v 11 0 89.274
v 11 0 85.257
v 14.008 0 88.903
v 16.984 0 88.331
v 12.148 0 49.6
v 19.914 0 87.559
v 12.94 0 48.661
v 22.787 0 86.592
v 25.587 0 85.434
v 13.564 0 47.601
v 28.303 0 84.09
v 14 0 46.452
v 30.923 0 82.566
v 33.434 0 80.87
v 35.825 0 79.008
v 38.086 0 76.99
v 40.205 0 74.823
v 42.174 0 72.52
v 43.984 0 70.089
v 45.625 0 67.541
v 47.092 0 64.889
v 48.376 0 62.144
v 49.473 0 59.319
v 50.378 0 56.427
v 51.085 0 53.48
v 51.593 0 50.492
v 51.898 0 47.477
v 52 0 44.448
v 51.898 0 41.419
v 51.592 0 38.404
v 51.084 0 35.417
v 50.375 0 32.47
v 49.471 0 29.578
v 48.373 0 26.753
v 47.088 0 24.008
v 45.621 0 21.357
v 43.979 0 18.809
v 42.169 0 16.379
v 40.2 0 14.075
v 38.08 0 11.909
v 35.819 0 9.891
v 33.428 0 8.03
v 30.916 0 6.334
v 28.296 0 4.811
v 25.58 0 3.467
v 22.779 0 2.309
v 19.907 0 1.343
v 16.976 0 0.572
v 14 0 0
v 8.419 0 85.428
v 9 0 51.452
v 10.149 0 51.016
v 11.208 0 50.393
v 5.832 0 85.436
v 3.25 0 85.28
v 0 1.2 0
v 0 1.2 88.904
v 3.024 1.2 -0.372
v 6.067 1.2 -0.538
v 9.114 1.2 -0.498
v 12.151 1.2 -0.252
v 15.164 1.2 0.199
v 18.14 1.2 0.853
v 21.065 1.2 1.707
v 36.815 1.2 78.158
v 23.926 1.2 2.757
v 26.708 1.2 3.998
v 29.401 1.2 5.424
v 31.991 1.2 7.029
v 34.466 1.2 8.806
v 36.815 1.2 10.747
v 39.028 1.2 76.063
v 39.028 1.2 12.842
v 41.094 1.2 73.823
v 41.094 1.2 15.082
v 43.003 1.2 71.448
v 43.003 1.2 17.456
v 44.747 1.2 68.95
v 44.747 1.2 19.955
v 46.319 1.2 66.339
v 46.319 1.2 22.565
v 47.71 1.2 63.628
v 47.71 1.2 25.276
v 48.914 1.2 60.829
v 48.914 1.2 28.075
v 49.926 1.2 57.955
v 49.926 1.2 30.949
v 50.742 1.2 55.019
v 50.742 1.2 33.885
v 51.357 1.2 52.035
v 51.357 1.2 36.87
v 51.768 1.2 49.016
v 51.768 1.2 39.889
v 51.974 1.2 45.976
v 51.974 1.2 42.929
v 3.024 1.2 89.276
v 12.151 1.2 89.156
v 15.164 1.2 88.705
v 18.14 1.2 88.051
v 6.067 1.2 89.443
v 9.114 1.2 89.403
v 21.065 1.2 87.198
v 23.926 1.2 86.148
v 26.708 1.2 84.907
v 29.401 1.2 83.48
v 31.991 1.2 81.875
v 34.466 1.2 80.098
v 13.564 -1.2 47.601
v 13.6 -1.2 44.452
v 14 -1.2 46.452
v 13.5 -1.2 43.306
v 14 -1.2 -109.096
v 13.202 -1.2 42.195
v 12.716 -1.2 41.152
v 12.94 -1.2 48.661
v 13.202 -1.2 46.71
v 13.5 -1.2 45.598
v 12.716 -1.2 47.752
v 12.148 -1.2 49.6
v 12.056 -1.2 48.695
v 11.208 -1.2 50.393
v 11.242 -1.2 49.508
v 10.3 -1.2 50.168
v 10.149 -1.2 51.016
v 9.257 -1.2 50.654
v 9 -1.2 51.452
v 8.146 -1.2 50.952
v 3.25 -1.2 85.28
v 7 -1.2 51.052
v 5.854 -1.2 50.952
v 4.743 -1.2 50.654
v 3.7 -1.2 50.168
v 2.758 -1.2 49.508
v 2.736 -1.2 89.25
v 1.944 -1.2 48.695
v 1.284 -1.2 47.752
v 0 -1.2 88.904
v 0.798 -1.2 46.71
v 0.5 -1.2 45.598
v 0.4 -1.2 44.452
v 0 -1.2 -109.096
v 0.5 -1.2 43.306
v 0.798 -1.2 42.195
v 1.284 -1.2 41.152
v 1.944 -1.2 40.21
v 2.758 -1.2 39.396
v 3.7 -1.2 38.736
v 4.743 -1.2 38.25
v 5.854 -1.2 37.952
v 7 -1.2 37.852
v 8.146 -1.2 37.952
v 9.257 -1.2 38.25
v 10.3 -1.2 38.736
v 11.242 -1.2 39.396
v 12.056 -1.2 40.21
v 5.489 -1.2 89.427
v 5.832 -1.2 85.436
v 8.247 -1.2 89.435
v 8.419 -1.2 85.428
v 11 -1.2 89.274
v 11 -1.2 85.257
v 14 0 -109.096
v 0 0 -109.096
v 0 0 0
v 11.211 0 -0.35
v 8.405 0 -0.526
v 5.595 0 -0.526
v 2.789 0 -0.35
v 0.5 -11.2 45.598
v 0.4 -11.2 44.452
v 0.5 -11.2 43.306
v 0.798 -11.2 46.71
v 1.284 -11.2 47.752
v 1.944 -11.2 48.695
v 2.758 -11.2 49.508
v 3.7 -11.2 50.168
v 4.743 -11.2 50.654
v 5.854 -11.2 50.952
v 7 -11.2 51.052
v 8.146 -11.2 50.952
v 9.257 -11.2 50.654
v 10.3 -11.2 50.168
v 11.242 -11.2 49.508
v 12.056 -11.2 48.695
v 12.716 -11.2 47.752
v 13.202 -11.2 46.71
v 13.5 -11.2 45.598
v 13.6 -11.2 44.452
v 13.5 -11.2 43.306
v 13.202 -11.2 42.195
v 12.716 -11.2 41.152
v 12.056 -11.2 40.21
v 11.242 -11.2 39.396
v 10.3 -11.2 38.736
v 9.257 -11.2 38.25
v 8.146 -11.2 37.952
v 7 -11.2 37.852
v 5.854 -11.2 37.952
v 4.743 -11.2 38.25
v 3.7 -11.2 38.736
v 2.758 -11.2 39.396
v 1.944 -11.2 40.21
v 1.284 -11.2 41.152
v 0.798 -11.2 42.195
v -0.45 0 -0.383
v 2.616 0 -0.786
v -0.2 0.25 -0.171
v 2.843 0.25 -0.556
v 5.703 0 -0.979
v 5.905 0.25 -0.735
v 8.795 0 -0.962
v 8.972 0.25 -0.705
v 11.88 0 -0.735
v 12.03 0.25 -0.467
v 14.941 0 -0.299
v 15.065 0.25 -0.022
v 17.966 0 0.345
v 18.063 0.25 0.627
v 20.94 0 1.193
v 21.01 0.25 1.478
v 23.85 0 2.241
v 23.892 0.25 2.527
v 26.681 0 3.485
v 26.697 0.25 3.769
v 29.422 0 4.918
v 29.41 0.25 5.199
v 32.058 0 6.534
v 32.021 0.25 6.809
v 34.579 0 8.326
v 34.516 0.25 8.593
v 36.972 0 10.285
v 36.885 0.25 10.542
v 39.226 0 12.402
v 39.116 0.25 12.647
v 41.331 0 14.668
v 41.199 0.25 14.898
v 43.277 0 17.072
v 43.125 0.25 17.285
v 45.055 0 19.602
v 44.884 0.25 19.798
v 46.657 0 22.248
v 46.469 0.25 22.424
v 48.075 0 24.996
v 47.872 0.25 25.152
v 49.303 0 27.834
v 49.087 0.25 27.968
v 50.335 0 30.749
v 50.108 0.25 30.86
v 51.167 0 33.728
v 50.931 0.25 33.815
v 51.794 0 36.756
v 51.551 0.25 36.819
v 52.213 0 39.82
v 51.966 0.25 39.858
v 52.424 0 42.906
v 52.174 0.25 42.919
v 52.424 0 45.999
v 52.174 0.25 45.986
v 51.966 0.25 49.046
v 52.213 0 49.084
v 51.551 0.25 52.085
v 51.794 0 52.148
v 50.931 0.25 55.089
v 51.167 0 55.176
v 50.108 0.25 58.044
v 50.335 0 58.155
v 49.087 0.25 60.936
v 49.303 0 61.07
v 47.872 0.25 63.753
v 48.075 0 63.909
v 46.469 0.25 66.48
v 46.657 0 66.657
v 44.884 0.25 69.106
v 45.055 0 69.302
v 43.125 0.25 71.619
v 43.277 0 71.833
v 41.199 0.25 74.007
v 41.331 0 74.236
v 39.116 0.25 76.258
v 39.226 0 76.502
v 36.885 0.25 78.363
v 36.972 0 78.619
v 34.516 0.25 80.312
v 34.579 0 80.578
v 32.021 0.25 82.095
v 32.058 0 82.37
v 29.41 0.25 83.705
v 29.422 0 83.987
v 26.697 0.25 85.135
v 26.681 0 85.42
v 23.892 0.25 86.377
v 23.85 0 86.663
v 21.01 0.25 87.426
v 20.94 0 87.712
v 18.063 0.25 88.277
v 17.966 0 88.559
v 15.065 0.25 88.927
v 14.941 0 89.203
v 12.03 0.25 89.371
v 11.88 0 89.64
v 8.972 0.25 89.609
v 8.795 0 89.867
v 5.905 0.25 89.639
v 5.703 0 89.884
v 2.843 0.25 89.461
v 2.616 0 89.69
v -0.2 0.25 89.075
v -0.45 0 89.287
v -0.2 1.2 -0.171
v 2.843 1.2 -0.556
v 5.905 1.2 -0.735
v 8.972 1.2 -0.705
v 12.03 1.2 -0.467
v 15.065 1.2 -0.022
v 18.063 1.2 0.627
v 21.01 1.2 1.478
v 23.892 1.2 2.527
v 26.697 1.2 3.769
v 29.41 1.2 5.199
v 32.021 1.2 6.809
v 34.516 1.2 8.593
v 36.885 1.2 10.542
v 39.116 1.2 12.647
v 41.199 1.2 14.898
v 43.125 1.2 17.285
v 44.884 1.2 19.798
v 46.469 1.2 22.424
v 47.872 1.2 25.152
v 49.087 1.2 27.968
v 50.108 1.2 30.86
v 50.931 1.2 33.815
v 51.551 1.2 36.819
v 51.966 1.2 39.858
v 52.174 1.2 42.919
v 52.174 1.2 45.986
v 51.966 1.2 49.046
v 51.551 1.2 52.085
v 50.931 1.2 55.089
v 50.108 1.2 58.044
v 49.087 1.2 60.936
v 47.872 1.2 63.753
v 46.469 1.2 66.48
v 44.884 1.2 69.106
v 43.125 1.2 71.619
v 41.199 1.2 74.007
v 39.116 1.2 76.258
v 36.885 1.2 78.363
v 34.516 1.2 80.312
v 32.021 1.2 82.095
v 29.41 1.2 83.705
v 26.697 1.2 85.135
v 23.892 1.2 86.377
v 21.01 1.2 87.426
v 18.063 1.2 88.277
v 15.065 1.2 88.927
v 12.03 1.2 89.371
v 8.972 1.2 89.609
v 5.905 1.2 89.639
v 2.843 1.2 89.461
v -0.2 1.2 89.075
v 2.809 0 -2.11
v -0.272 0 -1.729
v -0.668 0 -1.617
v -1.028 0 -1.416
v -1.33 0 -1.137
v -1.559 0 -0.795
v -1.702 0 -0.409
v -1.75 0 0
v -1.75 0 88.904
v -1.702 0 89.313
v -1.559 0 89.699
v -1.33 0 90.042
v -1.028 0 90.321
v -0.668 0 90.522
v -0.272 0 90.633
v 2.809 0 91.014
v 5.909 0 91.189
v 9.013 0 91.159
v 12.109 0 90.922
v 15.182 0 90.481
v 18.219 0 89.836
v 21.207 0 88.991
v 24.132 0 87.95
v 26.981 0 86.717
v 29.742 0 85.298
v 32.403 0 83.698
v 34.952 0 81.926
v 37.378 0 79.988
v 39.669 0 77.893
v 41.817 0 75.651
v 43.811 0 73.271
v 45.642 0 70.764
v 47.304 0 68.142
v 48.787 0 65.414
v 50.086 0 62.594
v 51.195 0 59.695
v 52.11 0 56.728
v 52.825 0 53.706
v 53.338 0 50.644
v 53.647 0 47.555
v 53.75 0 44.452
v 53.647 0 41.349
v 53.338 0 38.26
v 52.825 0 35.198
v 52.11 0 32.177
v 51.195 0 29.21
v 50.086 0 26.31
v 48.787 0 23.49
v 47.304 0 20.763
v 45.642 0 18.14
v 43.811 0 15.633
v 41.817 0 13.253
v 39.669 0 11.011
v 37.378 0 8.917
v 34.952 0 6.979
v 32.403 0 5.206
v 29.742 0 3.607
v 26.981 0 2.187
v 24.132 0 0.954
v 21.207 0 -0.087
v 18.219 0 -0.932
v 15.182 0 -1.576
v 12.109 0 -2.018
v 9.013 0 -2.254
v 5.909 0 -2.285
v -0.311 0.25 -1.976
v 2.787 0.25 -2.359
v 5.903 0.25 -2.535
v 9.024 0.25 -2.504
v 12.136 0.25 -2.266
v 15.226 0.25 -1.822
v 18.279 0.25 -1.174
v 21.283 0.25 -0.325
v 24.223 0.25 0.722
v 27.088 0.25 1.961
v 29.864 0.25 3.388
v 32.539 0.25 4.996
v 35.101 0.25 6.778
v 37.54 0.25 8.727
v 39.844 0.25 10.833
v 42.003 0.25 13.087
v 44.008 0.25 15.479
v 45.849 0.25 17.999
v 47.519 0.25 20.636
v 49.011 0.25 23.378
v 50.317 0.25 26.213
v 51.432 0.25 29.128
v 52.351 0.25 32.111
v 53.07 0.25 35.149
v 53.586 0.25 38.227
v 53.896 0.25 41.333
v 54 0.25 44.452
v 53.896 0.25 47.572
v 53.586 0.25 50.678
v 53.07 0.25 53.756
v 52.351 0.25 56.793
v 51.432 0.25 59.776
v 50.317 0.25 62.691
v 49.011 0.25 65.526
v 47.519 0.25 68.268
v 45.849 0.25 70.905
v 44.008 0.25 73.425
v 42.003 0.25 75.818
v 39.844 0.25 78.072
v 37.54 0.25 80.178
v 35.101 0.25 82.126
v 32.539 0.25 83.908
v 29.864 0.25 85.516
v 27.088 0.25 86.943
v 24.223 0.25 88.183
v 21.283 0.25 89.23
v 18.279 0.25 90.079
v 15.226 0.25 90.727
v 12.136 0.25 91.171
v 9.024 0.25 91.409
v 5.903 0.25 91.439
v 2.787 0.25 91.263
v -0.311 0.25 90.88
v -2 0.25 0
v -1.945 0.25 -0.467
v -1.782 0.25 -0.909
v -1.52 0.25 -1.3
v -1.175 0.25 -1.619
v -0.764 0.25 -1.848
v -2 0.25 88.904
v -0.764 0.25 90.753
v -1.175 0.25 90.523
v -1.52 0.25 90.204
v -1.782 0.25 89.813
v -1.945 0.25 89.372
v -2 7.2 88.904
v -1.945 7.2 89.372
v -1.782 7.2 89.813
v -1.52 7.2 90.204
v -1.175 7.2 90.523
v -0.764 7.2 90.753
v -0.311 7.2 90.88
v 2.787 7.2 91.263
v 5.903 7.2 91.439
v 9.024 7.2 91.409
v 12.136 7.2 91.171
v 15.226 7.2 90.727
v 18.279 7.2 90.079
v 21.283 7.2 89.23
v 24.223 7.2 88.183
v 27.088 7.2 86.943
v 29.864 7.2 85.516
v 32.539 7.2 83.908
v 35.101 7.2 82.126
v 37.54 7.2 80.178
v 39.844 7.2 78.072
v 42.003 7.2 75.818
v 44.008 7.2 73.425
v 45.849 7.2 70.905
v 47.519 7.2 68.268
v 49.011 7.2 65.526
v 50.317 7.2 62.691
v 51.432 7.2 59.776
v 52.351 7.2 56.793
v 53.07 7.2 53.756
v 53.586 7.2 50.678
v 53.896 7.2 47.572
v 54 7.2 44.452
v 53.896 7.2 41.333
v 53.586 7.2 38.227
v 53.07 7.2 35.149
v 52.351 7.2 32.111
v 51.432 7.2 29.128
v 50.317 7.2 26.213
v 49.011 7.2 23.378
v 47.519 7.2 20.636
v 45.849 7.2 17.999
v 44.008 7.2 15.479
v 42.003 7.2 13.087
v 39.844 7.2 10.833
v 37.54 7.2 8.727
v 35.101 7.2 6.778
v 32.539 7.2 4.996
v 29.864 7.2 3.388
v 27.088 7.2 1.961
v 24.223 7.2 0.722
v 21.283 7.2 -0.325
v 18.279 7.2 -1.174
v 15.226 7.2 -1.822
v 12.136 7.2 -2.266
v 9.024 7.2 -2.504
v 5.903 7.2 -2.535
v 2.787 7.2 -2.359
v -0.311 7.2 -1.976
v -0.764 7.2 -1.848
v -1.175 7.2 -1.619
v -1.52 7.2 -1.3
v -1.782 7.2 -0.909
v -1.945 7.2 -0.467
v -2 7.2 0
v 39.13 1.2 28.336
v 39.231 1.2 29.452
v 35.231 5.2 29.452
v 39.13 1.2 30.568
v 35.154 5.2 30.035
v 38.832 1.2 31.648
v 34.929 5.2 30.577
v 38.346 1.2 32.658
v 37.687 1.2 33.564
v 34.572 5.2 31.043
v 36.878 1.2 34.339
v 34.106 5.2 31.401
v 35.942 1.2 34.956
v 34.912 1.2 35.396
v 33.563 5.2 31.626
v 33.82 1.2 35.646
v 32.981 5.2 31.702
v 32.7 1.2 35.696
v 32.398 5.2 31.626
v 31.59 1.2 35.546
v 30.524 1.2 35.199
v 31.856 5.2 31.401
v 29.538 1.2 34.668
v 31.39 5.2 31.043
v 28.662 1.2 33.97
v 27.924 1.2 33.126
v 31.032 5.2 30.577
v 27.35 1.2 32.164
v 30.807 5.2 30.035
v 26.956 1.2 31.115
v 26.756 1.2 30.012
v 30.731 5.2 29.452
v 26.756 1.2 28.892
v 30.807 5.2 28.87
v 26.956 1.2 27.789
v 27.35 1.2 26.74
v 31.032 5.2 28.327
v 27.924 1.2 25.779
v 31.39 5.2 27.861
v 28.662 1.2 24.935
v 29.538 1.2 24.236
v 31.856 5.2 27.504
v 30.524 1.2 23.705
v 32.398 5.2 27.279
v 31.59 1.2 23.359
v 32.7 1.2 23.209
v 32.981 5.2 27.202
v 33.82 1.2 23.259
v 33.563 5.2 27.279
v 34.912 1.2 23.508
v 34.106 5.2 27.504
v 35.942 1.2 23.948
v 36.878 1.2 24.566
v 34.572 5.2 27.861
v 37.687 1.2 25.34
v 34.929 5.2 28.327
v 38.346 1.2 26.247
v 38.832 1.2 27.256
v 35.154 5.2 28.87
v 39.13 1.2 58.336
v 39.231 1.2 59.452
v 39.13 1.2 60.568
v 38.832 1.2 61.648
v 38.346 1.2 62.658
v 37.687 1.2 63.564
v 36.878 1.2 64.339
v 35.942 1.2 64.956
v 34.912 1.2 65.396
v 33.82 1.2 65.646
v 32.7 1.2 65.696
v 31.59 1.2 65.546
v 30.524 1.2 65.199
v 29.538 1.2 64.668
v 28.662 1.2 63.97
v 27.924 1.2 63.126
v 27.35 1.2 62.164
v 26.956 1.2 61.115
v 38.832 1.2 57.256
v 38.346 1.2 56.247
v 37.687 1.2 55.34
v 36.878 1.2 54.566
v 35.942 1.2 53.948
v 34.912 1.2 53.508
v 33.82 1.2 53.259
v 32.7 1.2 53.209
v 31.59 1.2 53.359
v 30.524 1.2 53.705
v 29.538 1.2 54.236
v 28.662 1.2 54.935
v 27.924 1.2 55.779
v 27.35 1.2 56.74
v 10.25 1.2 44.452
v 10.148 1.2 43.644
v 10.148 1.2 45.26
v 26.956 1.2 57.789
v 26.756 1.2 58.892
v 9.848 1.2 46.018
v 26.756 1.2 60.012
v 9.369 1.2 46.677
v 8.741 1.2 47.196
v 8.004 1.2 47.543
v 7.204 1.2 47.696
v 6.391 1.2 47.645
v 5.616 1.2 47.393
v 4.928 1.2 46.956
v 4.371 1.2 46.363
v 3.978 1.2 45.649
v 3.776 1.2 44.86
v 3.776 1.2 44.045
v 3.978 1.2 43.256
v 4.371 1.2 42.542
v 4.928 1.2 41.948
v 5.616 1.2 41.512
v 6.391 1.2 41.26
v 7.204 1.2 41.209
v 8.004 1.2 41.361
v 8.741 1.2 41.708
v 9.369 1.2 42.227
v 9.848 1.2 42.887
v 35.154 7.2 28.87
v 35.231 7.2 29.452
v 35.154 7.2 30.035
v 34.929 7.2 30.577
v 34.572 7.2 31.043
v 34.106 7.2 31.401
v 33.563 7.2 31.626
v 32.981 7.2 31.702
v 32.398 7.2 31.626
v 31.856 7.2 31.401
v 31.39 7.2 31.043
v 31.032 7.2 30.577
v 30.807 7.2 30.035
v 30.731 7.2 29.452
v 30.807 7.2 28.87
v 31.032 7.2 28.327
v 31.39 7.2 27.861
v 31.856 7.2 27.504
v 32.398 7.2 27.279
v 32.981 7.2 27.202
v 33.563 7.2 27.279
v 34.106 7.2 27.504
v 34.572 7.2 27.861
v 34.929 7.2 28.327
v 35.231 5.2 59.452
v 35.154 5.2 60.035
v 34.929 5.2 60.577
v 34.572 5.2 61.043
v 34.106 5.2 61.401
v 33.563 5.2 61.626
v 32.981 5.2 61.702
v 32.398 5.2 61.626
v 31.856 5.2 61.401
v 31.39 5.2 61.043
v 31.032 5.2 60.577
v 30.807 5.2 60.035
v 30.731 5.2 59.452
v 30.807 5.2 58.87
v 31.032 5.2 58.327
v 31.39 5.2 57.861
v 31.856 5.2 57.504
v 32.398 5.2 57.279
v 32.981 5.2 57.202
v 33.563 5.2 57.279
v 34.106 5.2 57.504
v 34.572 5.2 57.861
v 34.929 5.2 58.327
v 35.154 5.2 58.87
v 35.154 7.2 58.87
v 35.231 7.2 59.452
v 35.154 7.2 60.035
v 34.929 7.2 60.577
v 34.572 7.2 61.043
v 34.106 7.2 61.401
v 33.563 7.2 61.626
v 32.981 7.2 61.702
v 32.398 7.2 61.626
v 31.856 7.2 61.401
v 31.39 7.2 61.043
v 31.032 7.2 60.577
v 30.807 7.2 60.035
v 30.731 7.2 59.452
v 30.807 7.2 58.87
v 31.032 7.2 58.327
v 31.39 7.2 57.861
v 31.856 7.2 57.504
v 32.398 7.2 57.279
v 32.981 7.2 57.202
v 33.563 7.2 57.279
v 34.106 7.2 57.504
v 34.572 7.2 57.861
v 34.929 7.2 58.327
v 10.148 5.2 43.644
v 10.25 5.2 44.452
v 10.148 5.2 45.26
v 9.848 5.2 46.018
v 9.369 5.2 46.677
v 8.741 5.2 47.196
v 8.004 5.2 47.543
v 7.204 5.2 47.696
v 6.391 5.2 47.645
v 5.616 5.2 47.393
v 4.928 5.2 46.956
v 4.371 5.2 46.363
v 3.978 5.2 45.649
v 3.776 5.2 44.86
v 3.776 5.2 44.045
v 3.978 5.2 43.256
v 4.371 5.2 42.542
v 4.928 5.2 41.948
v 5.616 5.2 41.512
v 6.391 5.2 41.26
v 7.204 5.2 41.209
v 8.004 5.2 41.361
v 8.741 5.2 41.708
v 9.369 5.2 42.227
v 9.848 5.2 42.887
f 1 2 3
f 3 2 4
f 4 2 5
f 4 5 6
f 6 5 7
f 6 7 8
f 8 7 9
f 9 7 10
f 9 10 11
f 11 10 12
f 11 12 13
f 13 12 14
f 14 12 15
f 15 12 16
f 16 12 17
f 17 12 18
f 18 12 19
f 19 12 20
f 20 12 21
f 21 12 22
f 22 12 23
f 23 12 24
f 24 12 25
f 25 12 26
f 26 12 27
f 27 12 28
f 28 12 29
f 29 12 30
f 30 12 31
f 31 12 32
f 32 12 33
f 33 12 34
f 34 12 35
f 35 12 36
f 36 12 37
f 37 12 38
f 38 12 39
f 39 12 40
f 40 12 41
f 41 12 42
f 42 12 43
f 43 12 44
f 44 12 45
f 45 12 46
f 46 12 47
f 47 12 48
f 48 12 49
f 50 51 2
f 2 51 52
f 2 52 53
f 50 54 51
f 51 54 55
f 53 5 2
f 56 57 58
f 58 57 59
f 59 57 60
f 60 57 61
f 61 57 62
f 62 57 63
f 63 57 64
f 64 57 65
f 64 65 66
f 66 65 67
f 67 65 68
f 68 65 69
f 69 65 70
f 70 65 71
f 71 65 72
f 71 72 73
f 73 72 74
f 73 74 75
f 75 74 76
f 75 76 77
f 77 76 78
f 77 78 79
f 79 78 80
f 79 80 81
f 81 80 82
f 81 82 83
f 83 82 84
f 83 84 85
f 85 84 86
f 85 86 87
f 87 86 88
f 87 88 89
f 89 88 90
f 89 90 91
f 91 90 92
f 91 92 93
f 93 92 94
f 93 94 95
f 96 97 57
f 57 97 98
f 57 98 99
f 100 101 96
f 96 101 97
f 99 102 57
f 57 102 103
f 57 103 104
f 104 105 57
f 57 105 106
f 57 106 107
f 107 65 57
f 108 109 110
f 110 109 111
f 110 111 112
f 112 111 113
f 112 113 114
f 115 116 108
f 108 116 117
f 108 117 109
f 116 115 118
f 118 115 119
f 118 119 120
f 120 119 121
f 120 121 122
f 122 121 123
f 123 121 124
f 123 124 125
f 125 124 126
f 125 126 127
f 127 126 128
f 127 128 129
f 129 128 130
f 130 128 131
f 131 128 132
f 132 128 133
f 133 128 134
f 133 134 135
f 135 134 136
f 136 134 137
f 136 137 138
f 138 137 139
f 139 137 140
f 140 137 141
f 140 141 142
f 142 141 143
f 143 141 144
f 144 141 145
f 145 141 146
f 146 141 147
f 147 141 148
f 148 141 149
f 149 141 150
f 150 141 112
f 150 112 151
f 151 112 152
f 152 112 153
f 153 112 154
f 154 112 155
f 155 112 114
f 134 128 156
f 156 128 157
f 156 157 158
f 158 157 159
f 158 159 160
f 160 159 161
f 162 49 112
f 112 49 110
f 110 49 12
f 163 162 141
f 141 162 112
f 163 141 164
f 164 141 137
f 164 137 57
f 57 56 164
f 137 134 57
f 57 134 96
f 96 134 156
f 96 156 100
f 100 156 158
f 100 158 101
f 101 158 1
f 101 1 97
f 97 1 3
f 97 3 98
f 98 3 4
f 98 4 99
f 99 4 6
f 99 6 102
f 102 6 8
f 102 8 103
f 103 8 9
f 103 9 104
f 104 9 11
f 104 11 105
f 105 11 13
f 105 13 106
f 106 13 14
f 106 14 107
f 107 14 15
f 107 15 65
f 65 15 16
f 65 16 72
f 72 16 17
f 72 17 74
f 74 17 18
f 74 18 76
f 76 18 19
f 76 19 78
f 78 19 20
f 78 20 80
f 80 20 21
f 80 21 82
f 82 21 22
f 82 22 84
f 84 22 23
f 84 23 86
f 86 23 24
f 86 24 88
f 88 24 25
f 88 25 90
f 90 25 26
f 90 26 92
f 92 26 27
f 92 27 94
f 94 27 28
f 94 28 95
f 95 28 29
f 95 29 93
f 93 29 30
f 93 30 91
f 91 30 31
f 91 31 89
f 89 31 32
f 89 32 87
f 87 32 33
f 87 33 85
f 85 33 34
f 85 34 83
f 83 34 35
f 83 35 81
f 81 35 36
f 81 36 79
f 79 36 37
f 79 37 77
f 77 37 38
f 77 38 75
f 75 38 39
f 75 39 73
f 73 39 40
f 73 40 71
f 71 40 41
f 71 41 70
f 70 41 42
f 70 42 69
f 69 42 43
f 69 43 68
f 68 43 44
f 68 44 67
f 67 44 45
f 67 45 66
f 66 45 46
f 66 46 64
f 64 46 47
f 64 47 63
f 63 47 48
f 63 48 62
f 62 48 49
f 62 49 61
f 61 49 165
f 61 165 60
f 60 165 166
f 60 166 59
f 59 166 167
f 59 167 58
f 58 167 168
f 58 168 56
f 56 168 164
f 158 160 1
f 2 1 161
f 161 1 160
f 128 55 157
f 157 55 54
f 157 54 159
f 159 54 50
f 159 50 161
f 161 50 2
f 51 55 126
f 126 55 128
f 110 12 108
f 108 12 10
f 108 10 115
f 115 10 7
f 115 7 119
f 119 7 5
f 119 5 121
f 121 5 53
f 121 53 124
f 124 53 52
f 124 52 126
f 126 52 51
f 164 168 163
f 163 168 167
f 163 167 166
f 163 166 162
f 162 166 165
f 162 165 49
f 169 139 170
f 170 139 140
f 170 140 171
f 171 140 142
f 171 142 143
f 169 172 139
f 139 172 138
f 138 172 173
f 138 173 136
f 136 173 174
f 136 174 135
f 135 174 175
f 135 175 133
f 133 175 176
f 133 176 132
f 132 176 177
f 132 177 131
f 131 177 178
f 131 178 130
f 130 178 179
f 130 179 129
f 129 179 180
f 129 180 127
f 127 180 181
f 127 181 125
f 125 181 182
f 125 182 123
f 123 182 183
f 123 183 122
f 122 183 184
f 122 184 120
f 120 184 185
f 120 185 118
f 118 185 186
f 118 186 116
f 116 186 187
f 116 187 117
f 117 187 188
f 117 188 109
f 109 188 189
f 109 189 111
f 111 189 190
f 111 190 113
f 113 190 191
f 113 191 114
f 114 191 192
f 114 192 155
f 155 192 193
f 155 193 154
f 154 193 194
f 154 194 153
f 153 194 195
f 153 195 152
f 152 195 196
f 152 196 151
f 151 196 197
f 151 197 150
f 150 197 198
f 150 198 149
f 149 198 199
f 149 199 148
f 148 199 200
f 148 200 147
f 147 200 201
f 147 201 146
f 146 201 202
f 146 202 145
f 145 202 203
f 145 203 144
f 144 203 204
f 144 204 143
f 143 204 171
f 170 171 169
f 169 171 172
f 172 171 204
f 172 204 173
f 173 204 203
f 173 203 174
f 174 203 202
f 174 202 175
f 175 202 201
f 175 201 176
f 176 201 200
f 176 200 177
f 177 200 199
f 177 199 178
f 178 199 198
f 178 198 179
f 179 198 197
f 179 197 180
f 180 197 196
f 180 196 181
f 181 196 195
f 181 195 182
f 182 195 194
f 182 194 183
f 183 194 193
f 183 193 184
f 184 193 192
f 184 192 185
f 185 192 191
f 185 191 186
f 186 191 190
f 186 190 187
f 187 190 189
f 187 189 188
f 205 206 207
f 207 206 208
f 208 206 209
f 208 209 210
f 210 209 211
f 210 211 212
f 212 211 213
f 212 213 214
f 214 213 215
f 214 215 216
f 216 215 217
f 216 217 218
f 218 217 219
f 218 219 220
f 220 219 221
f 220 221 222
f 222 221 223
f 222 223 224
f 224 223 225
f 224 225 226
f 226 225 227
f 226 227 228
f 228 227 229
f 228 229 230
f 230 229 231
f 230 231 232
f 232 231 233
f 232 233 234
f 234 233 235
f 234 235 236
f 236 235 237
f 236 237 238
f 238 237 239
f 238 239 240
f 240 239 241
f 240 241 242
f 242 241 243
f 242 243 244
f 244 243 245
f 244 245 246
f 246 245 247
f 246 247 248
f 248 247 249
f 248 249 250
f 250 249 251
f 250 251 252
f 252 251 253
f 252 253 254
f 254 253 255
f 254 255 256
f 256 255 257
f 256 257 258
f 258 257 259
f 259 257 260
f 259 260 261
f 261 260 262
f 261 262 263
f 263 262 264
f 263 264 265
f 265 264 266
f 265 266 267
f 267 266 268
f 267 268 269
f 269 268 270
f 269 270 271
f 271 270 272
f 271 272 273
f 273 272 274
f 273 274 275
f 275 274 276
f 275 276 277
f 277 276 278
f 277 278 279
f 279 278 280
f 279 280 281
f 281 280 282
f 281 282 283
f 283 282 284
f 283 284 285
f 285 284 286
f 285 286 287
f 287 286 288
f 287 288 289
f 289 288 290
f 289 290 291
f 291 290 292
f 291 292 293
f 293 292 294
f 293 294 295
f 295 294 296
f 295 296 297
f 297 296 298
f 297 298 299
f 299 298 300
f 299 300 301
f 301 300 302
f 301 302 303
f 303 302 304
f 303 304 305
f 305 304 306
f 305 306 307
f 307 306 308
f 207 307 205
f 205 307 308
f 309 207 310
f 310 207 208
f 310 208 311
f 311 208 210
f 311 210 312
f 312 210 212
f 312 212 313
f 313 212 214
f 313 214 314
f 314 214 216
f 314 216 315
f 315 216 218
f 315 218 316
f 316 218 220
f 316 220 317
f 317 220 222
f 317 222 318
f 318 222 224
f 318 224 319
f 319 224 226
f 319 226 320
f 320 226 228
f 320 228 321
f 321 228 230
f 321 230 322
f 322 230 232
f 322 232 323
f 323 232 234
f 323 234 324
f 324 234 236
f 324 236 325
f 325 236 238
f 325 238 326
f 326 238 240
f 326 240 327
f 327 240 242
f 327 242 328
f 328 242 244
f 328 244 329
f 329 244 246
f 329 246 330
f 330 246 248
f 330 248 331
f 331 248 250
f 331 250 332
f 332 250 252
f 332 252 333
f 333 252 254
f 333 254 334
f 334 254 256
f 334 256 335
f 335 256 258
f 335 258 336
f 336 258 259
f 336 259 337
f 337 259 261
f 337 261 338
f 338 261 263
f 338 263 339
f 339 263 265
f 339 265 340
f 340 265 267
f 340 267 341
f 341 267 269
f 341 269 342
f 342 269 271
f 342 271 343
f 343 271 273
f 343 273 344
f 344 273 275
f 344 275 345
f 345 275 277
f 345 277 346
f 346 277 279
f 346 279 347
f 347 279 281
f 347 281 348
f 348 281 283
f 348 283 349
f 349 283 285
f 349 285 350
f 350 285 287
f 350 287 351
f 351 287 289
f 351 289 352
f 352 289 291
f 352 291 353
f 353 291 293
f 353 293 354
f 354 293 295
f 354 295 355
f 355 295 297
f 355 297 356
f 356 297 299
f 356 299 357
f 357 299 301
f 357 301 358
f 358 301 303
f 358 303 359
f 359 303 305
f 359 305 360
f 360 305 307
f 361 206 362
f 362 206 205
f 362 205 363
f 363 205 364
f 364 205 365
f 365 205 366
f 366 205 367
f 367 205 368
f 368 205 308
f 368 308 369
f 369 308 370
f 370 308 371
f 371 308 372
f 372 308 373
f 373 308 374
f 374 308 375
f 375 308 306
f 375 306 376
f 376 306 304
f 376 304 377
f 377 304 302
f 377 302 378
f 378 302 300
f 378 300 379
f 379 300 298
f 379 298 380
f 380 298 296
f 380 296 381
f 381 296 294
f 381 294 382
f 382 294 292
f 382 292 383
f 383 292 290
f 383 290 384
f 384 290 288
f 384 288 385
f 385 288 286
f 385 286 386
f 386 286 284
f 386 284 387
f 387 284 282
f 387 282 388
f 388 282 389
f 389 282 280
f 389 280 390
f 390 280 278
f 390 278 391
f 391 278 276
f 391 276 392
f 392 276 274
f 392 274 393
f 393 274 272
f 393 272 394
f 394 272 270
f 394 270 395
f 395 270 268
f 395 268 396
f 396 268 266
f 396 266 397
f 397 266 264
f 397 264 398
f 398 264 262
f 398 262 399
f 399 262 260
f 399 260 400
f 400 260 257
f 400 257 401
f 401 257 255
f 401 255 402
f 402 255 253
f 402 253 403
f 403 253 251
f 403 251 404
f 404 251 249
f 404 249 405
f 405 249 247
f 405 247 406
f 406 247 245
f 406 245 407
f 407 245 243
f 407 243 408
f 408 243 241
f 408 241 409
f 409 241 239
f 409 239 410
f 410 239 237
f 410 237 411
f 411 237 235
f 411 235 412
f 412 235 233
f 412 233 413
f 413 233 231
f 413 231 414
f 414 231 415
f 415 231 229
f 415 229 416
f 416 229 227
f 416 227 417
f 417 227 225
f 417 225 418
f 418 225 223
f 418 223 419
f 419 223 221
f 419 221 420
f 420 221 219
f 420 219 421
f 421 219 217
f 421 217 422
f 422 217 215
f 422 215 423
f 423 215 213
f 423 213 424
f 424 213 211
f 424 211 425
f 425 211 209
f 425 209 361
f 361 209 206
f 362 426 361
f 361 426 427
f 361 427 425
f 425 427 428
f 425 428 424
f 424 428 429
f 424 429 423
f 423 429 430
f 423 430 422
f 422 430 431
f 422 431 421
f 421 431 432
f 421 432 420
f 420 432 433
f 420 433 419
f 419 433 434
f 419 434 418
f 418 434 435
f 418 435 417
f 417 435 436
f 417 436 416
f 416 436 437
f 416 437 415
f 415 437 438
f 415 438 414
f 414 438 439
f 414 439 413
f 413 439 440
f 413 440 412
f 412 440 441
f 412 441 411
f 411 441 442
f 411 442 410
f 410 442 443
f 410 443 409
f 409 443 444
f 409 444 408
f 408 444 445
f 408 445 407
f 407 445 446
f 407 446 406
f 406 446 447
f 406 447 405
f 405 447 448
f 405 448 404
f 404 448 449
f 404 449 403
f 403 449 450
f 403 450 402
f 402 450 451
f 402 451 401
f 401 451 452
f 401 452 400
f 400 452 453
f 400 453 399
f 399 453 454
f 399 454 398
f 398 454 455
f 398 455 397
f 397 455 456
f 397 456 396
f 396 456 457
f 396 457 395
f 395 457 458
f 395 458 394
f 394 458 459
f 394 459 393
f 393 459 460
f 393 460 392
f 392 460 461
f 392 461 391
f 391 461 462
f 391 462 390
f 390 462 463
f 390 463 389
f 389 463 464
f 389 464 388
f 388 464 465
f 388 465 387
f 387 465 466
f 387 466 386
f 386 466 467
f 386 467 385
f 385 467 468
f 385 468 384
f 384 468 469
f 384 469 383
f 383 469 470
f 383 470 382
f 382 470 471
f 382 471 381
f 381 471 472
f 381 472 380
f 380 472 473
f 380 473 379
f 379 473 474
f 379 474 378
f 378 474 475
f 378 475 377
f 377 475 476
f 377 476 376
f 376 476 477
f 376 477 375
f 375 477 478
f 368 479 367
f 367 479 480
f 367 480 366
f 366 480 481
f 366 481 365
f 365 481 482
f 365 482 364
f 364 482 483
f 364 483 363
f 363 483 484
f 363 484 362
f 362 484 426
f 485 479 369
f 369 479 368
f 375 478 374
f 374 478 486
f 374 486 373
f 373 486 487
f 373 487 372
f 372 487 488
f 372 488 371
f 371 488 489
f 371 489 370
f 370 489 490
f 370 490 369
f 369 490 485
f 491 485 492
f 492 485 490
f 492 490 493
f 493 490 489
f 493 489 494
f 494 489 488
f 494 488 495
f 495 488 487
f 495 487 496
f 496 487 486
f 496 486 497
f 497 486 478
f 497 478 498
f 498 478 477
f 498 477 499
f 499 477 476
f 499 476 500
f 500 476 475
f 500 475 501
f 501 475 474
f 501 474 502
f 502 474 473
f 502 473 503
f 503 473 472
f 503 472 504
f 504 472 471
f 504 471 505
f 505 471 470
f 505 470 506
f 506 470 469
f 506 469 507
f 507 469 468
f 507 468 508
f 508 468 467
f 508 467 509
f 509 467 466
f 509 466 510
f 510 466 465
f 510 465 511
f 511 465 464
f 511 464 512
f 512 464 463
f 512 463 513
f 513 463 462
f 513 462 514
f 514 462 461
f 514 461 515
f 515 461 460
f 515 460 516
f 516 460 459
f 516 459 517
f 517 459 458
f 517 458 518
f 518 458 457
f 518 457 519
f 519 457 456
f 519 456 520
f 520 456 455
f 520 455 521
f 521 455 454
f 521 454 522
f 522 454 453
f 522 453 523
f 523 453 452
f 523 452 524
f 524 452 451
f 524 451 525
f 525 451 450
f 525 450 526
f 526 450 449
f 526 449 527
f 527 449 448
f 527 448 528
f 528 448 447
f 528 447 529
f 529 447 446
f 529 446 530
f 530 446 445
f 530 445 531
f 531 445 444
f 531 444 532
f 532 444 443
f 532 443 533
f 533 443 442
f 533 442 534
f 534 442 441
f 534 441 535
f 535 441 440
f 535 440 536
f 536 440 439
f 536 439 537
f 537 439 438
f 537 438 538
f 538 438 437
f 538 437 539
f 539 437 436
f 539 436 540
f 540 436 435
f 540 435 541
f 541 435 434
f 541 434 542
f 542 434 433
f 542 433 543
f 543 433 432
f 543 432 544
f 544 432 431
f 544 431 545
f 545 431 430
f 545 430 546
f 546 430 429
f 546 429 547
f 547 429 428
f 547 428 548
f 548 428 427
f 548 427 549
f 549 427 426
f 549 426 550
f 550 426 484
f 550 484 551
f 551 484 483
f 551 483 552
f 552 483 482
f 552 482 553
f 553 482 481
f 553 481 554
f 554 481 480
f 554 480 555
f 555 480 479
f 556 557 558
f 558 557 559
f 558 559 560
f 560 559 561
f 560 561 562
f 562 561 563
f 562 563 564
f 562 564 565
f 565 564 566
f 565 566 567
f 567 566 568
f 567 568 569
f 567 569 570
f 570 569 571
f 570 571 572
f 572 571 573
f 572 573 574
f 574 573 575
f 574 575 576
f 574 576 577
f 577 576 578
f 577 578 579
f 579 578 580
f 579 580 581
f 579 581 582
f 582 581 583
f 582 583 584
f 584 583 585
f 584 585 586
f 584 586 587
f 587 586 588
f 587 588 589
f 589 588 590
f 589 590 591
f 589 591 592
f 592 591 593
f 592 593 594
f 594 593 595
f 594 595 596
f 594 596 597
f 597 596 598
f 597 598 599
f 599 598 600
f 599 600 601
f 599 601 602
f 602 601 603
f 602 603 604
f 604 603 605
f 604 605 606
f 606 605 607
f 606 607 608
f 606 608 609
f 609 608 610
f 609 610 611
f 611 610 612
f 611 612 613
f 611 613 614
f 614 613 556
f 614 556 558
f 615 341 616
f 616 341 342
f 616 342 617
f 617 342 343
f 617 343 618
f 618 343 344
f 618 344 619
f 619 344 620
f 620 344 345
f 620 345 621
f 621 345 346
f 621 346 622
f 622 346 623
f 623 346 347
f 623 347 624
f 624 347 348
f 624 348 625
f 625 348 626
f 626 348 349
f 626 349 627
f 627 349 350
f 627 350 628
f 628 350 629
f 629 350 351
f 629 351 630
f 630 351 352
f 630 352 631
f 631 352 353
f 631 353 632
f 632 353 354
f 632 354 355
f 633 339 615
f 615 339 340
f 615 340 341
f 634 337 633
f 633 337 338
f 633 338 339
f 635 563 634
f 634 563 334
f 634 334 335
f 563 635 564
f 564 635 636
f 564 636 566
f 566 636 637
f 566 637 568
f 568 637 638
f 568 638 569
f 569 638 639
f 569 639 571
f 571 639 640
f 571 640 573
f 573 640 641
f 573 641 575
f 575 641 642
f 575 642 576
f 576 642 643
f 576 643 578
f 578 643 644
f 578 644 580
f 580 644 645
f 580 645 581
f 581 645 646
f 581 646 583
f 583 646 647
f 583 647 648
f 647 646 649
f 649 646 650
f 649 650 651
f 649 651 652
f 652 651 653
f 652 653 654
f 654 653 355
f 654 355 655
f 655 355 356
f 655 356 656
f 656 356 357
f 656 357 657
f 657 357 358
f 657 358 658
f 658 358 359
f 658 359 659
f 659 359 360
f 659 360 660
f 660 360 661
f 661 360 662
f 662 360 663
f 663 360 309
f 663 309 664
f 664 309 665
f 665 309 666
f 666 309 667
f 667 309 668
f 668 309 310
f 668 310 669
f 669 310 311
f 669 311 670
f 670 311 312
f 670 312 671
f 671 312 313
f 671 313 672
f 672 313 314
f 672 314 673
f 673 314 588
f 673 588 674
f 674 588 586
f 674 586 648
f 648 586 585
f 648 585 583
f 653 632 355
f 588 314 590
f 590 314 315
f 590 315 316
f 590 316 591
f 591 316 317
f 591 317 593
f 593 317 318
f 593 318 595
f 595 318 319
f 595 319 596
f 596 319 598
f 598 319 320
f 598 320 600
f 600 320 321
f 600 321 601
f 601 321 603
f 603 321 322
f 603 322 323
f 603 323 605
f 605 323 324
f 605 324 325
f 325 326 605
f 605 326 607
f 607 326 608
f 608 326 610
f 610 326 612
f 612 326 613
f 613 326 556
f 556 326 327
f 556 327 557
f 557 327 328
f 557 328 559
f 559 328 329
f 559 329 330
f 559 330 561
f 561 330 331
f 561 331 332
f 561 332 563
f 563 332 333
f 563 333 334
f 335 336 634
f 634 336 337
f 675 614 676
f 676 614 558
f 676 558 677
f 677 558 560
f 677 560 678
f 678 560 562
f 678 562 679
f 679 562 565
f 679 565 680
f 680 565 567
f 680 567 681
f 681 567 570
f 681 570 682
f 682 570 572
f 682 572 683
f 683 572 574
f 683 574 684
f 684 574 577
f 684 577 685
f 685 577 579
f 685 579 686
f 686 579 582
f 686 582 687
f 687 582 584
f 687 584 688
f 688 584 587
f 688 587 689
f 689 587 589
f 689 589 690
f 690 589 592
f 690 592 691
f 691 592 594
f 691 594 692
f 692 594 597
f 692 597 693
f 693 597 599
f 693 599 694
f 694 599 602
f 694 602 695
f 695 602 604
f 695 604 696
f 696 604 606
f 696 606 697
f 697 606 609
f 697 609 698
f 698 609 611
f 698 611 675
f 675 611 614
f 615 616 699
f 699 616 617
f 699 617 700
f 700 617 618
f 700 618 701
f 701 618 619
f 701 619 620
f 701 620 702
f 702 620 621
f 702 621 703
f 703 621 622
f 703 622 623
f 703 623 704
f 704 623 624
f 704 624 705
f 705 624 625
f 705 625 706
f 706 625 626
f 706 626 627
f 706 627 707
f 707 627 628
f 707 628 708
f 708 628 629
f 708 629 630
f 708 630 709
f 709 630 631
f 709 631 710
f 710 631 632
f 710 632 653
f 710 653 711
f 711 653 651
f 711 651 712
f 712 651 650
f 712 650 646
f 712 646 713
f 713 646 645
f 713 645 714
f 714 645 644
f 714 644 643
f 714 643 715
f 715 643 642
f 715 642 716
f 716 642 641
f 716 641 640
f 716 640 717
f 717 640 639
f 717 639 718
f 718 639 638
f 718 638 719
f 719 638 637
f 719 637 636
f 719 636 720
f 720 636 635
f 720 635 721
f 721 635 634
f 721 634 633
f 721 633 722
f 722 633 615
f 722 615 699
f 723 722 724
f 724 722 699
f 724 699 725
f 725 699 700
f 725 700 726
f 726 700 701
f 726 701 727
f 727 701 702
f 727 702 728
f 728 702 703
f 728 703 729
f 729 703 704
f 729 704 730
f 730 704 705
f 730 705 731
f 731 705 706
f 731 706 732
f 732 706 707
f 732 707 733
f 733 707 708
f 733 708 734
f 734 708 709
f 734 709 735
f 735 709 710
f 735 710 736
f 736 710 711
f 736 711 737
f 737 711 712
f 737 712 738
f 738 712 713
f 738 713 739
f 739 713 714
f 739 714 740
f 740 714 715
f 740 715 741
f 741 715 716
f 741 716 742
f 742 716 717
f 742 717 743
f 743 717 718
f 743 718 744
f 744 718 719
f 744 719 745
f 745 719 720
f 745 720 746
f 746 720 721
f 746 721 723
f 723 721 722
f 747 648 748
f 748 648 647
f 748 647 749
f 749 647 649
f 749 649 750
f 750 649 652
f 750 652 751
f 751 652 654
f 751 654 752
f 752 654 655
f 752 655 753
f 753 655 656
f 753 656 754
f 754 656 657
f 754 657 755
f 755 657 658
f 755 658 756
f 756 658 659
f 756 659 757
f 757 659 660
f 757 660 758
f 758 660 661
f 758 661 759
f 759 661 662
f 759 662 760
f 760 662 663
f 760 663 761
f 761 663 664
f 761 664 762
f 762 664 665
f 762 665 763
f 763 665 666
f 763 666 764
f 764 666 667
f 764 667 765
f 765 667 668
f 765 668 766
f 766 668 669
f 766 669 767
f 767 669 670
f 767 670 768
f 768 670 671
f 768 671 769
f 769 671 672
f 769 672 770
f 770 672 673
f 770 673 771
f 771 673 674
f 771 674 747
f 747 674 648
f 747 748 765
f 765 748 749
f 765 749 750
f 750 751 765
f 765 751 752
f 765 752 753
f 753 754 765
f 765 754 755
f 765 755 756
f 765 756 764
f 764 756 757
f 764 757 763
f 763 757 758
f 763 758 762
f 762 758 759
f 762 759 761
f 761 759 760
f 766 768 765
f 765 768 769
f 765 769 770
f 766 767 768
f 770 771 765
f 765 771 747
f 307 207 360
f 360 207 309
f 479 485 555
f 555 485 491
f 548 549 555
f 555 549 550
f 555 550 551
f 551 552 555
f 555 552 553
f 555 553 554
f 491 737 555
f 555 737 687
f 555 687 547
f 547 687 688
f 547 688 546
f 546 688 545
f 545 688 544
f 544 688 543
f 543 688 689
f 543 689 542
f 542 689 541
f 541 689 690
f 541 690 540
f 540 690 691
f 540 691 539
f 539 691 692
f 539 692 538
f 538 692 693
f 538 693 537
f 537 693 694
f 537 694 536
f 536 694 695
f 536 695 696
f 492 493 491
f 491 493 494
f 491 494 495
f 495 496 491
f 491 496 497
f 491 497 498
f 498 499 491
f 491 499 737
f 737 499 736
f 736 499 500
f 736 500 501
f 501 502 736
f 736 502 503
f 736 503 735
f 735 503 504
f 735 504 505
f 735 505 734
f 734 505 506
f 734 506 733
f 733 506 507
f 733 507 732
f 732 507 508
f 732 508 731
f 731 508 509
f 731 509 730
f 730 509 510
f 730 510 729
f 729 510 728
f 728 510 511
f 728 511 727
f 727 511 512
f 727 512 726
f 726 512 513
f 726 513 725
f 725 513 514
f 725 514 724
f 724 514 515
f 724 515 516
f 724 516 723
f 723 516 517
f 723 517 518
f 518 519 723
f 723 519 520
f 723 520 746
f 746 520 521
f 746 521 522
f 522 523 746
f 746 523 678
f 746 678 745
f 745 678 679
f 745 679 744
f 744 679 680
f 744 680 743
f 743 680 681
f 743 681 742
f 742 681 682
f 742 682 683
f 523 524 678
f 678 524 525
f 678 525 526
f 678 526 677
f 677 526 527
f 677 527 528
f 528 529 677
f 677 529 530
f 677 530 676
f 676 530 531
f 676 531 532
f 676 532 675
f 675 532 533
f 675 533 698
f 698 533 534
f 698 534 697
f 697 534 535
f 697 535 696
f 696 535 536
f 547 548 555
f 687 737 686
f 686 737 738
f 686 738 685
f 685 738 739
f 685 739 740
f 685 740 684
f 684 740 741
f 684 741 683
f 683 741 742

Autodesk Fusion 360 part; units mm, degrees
sketch "Sketch1" plane through (0, 0, 0) normal (0, 1, 0) x (1, 0, 0)
  arc A0 (0, -88.9044) -> (0, 0) centre (7, -44.4522) ccw
  line L0 (0, 0) -> (0, -88.9044)
  line L1 (0, 0) -> (0, 109.0956)
  line L2 (0, 109.0956) -> (14, 109.0956)
  line L3 (14, 109.0956) -> (14, -46.4522)
  line L4 (9, -51.4522) -> (3.25, -85.2804)
  arc A1 (9, -51.4522) -> (14, -46.4522) centre (7, -44.4522) ccw
  line L5 (0, -44.4522) -> (7, -44.4522) construction
  arc A2 (3.25, -85.2804) -> (11, -85.2566) centre (7, -44.4522) ccw
  line L6 (11, -85.2566) -> (11, -89.2741)
  circle A3 centre (7, -44.4522) radius 6.6
  point P0 (52, -44.4522)
  dimension "d1" = 7
  dimension "d2" = 52
  dimension "d3" = 14
  dimension "d4" = 198
  dimension "d5" = 2
  dimension "d6" = 2
  dimension "d7" = 3.25
  dimension "d8" = 45
  dimension "d9" = 41
  dimension "d10" = 11
  dimension "d11" = 13.2
extrude "Extrude1" add sketch "Sketch1" along normal blind 1.2 contours A0 L0 L3 L4 A1 A2 L6 | A0 L3 L4 A1 A2 L6 | A3 makes body 1
extrude "Extrude2" add sketch "Sketch1" against normal blind 1.2 separate body contours A0 L0 L3 L4 A1 A2 L6 | A0 L1 L2 L3 | A3 makes body 2
extrude "Extrude3" add sketch "Sketch1" against normal blind 10 from surface at -1.2 separate body contours A3 makes body 3
combine "Combine1" operation add target body 3 tool bodies 2 1
sketch "Sketch2" plane through (0, 1.2, 0) normal (0, 1, 0) x (-1, 0, 0)
  line L0 (0, 0) -> (0, 88.9044)
  arc A0 (0, 88.9044) -> (0, 0) centre (-7, 44.4522) ccw
  arc A1 (2, 90.5825) -> (2, -1.678) centre (-7, 44.4522) ccw
  line L1 (2, -1.678) -> (2, 90.5825)
  arc A2 (0.2, 89.0751) -> (0.2, -0.1706) centre (-7, 44.4522) ccw
  line L2 (0.2, -0.1706) -> (0.2, 89.0751)
  circle A3 centre (-7, 44.4522) radius 3.25
  circle A4 centre (-32.9808, 59.4522) radius 2.25
  circle A5 centre (-32.9808, 29.4522) radius 2.25
  line L3 (-32.9808, 29.4522) -> (-32.9808, 59.4522) construction
  line L4 (-32.9808, 59.4522) -> (-7, 44.4522) construction
  line L5 (-7, 44.4522) -> (-32.9808, 29.4522) construction
  circle A6 centre (-32.9808, 59.4522) radius 5.75 construction
  dimension "d23" = 2
  dimension "d24" = 0.2
  dimension "d25" = 6.5
  dimension "d26" = 4.5
  dimension "d27" = 11.5
  dimension "d28" = 30
extrude "Extrude4" add sketch "Sketch2" along normal blind 6 separate body contours L0 A0 | A1 L1 | A2 L2 | A3 makes body 4
extrude "Extrude5" add sketch "Sketch2" against normal up to surface (1.2 mm away) contours A1 L1 bodies 4
extrude "Extrude6" cut sketch "Sketch2" along normal blind 4 contours A3 bodies 4
chamfer "Chamfer1" distance 4 angle 45 2 edges at (35.0785, 1.2, 60.2659) (35.0785, 1.2, 30.2659) on bodies 4
fillet "Fillet3" radius 2 2 edges at (-2, 3.6, 90.5825) (-2, 3.6, -1.678) on bodies 4
chamfer "Chamfer2" distance 0.25 angle 45 6 edges at (54, 0, 44.4522) (-1.5202, 0, -1.2996) (-2, 0, 44.4522) (-1.5202, 0, 90.204) (52.2, 0, 44.4522) (-0.2, 0, 44.4522) on bodies 4
equation "d1 = d3 / 2"
equation "d9 = d8 - 4 mm"
